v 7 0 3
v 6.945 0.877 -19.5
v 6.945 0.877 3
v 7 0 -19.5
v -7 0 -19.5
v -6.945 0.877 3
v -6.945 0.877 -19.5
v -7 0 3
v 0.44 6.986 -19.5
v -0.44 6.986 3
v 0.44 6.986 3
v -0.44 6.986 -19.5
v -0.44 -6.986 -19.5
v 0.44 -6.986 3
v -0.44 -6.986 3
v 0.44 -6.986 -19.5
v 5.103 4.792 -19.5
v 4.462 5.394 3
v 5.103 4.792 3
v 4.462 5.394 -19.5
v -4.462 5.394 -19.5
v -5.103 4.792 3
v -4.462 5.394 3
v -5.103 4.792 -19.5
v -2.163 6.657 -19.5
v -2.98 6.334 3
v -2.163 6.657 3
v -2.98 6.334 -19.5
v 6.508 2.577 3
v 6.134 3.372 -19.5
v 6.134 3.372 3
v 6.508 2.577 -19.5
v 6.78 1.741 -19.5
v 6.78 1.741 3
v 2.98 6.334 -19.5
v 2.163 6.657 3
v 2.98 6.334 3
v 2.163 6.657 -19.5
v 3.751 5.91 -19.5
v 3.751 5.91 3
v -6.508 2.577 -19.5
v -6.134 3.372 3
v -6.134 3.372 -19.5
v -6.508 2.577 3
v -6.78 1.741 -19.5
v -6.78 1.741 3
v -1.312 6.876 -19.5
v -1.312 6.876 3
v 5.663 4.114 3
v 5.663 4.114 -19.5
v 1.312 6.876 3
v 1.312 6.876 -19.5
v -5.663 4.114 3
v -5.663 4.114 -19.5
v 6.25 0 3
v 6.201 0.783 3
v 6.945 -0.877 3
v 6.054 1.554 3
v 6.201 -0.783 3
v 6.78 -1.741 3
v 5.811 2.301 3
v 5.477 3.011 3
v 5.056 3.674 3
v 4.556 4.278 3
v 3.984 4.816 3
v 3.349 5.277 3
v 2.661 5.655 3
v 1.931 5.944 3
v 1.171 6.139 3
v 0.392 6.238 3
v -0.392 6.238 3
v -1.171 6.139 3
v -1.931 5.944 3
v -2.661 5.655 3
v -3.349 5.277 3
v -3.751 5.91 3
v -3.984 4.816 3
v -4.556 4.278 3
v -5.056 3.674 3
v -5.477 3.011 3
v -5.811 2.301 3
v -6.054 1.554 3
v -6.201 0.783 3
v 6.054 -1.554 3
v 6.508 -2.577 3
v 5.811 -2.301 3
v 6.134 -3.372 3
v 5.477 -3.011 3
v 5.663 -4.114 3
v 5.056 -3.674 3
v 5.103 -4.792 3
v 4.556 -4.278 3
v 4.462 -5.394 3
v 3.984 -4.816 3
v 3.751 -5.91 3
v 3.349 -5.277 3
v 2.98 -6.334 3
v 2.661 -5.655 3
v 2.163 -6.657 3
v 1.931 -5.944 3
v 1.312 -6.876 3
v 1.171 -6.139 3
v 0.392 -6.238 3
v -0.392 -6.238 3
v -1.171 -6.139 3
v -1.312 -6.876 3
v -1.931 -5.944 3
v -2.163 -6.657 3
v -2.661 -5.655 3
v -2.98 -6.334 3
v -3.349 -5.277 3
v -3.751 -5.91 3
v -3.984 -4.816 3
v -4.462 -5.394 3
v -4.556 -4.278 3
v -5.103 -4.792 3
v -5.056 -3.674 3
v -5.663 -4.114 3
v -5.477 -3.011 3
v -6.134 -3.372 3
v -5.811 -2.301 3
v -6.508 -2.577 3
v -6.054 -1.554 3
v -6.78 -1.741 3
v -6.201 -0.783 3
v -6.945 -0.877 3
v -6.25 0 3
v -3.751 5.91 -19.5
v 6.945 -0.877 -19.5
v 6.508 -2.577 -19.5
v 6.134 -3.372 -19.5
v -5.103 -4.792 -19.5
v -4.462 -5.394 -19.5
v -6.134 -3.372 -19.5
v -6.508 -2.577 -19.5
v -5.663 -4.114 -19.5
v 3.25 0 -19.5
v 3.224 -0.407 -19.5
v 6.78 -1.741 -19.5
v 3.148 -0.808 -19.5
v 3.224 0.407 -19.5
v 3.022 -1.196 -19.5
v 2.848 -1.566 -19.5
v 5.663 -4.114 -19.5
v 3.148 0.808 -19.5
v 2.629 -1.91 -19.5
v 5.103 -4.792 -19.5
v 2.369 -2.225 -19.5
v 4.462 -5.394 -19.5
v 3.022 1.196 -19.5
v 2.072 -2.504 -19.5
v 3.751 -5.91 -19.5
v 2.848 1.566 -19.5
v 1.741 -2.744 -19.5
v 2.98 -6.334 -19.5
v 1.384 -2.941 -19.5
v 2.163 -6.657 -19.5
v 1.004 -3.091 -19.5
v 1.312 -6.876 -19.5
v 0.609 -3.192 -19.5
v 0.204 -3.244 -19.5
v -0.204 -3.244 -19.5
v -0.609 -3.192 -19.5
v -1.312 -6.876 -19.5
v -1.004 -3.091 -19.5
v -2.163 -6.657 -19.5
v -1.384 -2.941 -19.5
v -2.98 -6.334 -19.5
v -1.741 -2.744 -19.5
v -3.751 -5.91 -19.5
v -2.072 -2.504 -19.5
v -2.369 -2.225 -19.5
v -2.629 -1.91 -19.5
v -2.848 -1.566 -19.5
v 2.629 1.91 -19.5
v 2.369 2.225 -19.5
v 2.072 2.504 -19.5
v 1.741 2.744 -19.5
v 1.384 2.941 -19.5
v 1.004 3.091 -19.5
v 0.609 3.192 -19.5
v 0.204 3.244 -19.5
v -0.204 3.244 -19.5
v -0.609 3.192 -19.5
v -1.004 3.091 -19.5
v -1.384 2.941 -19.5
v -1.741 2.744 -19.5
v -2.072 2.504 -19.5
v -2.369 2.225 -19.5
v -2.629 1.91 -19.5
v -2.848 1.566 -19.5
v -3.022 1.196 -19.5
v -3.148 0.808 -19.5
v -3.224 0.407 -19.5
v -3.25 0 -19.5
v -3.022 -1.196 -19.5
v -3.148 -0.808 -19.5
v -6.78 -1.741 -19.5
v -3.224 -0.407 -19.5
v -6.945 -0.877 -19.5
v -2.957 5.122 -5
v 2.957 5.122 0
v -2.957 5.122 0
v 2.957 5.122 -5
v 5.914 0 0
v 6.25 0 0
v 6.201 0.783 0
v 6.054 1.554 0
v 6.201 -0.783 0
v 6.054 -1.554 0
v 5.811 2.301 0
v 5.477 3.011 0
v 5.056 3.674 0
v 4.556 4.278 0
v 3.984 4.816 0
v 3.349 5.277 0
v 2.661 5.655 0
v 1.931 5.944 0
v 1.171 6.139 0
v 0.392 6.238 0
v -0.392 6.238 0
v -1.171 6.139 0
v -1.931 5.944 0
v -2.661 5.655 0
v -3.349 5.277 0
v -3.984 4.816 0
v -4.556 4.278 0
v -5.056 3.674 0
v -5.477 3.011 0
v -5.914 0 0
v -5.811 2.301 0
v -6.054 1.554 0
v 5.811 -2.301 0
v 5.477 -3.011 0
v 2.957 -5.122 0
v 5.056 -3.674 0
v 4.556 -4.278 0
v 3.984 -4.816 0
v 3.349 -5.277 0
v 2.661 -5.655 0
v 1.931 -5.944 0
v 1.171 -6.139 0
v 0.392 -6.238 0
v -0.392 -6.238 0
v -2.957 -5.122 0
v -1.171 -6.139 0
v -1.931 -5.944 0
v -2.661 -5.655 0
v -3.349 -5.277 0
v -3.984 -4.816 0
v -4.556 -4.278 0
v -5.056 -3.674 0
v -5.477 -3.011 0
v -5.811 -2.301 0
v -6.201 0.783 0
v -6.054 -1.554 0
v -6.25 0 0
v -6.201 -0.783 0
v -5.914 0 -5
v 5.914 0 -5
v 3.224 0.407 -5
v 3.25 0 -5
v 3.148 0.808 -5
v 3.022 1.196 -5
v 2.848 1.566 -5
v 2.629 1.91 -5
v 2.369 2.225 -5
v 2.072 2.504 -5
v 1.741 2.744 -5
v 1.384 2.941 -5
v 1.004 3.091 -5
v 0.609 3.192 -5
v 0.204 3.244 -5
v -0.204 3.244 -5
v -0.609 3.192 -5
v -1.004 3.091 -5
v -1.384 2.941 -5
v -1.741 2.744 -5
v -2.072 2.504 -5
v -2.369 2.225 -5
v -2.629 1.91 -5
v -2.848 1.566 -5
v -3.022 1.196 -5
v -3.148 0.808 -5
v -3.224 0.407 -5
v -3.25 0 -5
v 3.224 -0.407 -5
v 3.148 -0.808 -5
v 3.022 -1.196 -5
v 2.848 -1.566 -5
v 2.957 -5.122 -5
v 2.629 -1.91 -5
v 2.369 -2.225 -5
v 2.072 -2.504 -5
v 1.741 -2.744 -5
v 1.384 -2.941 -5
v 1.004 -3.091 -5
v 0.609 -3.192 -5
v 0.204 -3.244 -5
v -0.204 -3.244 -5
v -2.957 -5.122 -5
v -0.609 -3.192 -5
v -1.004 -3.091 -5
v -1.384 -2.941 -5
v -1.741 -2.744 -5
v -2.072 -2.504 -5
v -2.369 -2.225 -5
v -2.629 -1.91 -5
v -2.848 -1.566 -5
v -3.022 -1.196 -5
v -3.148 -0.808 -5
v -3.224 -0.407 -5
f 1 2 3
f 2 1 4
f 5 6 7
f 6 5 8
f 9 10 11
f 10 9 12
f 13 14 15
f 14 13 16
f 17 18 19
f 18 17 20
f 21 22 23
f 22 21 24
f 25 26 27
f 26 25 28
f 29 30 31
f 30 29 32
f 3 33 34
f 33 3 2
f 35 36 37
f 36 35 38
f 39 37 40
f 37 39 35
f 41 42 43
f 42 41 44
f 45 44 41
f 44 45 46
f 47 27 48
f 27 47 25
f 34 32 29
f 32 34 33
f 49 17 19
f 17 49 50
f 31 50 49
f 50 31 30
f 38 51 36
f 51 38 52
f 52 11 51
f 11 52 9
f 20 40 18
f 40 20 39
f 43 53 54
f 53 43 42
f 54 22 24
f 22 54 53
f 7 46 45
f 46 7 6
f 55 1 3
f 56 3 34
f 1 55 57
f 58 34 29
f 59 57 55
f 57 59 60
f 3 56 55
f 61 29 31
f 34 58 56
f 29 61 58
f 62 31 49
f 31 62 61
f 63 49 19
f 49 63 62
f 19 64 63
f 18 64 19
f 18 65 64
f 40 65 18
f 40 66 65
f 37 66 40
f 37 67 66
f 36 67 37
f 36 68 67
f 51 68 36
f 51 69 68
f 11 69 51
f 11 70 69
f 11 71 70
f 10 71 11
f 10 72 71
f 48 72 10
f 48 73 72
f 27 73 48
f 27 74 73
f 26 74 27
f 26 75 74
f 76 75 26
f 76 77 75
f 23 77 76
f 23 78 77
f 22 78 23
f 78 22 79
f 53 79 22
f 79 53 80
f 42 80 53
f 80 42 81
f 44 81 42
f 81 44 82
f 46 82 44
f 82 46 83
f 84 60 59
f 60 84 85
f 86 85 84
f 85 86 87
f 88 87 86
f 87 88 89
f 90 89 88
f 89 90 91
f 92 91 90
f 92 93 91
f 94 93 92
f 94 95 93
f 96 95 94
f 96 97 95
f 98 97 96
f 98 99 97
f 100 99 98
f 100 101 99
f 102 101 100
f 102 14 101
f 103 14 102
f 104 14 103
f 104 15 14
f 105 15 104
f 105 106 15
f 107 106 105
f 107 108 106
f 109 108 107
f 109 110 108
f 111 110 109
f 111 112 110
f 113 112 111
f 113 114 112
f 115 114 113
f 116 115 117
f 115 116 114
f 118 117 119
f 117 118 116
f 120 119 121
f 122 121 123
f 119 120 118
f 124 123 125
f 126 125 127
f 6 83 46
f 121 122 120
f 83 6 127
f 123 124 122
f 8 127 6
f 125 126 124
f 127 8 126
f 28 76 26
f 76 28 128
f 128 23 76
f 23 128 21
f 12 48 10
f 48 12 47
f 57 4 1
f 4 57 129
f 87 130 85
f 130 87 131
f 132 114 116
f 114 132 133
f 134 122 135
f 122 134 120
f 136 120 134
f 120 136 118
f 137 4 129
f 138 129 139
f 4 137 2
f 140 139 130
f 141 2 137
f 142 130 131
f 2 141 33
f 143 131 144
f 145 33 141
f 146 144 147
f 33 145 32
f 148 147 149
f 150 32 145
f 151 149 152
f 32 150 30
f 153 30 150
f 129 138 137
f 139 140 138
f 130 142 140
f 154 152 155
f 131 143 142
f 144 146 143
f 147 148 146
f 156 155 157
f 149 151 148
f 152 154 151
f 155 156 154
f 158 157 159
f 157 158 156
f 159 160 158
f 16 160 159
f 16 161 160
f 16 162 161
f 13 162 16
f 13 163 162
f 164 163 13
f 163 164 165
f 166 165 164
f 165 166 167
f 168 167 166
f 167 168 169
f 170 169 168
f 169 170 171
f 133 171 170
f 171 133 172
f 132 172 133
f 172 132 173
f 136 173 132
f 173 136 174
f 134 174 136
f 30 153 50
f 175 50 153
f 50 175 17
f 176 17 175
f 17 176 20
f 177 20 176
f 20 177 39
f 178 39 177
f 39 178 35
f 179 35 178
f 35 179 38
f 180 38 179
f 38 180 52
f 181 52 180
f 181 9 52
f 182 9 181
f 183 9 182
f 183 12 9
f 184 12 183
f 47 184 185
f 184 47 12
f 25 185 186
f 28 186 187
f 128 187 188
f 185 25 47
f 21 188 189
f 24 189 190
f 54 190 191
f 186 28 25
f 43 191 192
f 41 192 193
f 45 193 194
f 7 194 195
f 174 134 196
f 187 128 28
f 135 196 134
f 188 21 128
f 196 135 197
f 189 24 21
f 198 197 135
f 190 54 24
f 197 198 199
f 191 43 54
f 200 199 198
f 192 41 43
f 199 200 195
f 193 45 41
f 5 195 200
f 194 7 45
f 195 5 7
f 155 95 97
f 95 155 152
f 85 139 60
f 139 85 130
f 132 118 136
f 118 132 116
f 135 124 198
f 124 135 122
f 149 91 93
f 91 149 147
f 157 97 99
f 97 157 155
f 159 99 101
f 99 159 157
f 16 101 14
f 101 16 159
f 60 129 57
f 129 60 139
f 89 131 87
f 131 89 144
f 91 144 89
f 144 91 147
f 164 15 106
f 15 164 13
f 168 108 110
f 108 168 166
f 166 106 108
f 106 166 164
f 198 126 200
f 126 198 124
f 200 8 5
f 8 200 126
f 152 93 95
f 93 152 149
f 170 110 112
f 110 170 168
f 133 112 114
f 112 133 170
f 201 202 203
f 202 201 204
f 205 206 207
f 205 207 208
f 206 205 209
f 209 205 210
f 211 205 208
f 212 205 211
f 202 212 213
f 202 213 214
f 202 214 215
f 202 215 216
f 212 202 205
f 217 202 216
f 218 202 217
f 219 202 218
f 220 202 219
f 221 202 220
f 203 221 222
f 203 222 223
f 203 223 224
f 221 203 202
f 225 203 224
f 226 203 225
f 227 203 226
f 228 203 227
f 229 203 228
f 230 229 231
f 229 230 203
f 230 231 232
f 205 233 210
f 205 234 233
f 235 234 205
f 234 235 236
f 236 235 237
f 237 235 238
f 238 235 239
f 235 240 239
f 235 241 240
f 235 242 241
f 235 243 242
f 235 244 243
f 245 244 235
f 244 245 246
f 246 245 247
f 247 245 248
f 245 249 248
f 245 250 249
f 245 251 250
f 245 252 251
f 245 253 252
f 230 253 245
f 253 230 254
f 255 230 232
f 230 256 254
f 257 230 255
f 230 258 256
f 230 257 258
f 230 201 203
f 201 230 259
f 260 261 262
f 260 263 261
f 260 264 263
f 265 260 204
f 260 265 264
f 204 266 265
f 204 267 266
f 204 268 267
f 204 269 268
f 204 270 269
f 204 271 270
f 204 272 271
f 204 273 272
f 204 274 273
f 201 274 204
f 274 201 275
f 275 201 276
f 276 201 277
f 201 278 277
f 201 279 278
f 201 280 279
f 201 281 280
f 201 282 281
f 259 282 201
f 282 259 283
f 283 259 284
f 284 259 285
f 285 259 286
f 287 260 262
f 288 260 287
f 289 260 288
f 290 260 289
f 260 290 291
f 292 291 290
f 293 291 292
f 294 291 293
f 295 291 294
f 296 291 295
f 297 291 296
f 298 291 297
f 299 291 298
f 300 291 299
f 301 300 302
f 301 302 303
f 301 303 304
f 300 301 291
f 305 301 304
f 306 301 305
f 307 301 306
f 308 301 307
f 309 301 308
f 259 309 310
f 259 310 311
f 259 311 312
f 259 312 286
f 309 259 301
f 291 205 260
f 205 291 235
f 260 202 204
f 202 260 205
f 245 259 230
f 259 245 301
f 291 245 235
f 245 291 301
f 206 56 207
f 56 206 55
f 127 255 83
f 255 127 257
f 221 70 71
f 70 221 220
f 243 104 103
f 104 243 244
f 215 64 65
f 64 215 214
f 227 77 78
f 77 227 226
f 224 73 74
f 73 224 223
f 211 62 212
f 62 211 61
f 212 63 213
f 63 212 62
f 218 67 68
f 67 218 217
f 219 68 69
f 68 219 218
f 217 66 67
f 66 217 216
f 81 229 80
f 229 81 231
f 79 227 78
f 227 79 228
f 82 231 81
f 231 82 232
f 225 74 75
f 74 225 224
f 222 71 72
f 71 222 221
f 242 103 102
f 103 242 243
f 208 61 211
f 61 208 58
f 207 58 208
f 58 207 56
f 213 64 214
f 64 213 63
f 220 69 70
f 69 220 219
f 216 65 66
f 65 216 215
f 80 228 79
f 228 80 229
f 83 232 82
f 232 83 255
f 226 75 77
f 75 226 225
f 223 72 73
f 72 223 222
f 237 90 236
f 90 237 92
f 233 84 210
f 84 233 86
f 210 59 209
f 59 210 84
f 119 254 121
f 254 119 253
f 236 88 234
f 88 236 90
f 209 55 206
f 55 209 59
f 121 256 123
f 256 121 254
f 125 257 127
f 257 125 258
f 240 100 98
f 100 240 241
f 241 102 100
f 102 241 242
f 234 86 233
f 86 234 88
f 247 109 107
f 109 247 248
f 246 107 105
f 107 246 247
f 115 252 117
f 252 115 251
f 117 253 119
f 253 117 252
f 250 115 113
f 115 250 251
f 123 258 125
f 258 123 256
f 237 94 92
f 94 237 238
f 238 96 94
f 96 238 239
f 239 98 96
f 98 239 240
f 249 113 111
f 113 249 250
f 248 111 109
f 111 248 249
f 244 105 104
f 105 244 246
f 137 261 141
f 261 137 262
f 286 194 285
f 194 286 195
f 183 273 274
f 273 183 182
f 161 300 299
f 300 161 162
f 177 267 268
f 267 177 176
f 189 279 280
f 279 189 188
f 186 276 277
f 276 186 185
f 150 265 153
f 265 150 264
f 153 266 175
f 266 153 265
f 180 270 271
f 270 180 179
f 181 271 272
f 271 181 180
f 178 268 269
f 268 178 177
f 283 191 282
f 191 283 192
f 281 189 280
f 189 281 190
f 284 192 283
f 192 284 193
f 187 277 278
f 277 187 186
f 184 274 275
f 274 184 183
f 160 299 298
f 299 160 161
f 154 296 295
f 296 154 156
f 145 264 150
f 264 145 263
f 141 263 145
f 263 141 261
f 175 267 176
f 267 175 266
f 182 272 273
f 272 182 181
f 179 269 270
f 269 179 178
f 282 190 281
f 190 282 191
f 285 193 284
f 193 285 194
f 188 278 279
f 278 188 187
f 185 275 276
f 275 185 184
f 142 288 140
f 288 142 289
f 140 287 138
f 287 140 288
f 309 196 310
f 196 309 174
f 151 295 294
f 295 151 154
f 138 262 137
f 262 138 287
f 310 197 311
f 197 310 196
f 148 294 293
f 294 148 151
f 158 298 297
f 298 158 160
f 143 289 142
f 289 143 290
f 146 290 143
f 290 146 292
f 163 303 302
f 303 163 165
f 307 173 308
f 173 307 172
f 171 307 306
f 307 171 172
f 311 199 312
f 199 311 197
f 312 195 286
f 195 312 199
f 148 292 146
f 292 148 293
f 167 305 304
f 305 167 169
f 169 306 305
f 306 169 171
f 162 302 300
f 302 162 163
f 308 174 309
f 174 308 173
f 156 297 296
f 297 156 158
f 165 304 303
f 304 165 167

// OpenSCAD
$fn = 50;


difference() {
	union() {
		translate(v = [0, 0, -19.5000000000]) {
			cylinder(h = 22.5000000000, r = 7.0000000000);
		}
		#translate(v = [0, 0, -21.0000000000]) {
			cylinder(h = 21, r = 2.8750000000);
		}
	}
	union() {
		translate(v = [0, 0, 0]) {
			rotate(a = [0, 0, 0]) {
				difference() {
					union() {
						translate(v = [0, 0, -5]) {
							linear_extrude(height = 5) {
								polygon(points = [[5.9142500000, 0.0000000000], [2.9571250000, 5.1218907443], [-2.9571250000, 5.1218907443], [-5.9142500000, 0.0000000000], [-2.9571250000, -5.1218907443], [2.9571250000, -5.1218907443]]);
							}
						}
					}
					union();
				}
			}
		}
		#cylinder(h = 3, r = 6.2500000000);
		#translate(v = [0, 0, -100.0000000000]) {
			cylinder(h = 200, r = 3.2500000000);
		}
	}
}
